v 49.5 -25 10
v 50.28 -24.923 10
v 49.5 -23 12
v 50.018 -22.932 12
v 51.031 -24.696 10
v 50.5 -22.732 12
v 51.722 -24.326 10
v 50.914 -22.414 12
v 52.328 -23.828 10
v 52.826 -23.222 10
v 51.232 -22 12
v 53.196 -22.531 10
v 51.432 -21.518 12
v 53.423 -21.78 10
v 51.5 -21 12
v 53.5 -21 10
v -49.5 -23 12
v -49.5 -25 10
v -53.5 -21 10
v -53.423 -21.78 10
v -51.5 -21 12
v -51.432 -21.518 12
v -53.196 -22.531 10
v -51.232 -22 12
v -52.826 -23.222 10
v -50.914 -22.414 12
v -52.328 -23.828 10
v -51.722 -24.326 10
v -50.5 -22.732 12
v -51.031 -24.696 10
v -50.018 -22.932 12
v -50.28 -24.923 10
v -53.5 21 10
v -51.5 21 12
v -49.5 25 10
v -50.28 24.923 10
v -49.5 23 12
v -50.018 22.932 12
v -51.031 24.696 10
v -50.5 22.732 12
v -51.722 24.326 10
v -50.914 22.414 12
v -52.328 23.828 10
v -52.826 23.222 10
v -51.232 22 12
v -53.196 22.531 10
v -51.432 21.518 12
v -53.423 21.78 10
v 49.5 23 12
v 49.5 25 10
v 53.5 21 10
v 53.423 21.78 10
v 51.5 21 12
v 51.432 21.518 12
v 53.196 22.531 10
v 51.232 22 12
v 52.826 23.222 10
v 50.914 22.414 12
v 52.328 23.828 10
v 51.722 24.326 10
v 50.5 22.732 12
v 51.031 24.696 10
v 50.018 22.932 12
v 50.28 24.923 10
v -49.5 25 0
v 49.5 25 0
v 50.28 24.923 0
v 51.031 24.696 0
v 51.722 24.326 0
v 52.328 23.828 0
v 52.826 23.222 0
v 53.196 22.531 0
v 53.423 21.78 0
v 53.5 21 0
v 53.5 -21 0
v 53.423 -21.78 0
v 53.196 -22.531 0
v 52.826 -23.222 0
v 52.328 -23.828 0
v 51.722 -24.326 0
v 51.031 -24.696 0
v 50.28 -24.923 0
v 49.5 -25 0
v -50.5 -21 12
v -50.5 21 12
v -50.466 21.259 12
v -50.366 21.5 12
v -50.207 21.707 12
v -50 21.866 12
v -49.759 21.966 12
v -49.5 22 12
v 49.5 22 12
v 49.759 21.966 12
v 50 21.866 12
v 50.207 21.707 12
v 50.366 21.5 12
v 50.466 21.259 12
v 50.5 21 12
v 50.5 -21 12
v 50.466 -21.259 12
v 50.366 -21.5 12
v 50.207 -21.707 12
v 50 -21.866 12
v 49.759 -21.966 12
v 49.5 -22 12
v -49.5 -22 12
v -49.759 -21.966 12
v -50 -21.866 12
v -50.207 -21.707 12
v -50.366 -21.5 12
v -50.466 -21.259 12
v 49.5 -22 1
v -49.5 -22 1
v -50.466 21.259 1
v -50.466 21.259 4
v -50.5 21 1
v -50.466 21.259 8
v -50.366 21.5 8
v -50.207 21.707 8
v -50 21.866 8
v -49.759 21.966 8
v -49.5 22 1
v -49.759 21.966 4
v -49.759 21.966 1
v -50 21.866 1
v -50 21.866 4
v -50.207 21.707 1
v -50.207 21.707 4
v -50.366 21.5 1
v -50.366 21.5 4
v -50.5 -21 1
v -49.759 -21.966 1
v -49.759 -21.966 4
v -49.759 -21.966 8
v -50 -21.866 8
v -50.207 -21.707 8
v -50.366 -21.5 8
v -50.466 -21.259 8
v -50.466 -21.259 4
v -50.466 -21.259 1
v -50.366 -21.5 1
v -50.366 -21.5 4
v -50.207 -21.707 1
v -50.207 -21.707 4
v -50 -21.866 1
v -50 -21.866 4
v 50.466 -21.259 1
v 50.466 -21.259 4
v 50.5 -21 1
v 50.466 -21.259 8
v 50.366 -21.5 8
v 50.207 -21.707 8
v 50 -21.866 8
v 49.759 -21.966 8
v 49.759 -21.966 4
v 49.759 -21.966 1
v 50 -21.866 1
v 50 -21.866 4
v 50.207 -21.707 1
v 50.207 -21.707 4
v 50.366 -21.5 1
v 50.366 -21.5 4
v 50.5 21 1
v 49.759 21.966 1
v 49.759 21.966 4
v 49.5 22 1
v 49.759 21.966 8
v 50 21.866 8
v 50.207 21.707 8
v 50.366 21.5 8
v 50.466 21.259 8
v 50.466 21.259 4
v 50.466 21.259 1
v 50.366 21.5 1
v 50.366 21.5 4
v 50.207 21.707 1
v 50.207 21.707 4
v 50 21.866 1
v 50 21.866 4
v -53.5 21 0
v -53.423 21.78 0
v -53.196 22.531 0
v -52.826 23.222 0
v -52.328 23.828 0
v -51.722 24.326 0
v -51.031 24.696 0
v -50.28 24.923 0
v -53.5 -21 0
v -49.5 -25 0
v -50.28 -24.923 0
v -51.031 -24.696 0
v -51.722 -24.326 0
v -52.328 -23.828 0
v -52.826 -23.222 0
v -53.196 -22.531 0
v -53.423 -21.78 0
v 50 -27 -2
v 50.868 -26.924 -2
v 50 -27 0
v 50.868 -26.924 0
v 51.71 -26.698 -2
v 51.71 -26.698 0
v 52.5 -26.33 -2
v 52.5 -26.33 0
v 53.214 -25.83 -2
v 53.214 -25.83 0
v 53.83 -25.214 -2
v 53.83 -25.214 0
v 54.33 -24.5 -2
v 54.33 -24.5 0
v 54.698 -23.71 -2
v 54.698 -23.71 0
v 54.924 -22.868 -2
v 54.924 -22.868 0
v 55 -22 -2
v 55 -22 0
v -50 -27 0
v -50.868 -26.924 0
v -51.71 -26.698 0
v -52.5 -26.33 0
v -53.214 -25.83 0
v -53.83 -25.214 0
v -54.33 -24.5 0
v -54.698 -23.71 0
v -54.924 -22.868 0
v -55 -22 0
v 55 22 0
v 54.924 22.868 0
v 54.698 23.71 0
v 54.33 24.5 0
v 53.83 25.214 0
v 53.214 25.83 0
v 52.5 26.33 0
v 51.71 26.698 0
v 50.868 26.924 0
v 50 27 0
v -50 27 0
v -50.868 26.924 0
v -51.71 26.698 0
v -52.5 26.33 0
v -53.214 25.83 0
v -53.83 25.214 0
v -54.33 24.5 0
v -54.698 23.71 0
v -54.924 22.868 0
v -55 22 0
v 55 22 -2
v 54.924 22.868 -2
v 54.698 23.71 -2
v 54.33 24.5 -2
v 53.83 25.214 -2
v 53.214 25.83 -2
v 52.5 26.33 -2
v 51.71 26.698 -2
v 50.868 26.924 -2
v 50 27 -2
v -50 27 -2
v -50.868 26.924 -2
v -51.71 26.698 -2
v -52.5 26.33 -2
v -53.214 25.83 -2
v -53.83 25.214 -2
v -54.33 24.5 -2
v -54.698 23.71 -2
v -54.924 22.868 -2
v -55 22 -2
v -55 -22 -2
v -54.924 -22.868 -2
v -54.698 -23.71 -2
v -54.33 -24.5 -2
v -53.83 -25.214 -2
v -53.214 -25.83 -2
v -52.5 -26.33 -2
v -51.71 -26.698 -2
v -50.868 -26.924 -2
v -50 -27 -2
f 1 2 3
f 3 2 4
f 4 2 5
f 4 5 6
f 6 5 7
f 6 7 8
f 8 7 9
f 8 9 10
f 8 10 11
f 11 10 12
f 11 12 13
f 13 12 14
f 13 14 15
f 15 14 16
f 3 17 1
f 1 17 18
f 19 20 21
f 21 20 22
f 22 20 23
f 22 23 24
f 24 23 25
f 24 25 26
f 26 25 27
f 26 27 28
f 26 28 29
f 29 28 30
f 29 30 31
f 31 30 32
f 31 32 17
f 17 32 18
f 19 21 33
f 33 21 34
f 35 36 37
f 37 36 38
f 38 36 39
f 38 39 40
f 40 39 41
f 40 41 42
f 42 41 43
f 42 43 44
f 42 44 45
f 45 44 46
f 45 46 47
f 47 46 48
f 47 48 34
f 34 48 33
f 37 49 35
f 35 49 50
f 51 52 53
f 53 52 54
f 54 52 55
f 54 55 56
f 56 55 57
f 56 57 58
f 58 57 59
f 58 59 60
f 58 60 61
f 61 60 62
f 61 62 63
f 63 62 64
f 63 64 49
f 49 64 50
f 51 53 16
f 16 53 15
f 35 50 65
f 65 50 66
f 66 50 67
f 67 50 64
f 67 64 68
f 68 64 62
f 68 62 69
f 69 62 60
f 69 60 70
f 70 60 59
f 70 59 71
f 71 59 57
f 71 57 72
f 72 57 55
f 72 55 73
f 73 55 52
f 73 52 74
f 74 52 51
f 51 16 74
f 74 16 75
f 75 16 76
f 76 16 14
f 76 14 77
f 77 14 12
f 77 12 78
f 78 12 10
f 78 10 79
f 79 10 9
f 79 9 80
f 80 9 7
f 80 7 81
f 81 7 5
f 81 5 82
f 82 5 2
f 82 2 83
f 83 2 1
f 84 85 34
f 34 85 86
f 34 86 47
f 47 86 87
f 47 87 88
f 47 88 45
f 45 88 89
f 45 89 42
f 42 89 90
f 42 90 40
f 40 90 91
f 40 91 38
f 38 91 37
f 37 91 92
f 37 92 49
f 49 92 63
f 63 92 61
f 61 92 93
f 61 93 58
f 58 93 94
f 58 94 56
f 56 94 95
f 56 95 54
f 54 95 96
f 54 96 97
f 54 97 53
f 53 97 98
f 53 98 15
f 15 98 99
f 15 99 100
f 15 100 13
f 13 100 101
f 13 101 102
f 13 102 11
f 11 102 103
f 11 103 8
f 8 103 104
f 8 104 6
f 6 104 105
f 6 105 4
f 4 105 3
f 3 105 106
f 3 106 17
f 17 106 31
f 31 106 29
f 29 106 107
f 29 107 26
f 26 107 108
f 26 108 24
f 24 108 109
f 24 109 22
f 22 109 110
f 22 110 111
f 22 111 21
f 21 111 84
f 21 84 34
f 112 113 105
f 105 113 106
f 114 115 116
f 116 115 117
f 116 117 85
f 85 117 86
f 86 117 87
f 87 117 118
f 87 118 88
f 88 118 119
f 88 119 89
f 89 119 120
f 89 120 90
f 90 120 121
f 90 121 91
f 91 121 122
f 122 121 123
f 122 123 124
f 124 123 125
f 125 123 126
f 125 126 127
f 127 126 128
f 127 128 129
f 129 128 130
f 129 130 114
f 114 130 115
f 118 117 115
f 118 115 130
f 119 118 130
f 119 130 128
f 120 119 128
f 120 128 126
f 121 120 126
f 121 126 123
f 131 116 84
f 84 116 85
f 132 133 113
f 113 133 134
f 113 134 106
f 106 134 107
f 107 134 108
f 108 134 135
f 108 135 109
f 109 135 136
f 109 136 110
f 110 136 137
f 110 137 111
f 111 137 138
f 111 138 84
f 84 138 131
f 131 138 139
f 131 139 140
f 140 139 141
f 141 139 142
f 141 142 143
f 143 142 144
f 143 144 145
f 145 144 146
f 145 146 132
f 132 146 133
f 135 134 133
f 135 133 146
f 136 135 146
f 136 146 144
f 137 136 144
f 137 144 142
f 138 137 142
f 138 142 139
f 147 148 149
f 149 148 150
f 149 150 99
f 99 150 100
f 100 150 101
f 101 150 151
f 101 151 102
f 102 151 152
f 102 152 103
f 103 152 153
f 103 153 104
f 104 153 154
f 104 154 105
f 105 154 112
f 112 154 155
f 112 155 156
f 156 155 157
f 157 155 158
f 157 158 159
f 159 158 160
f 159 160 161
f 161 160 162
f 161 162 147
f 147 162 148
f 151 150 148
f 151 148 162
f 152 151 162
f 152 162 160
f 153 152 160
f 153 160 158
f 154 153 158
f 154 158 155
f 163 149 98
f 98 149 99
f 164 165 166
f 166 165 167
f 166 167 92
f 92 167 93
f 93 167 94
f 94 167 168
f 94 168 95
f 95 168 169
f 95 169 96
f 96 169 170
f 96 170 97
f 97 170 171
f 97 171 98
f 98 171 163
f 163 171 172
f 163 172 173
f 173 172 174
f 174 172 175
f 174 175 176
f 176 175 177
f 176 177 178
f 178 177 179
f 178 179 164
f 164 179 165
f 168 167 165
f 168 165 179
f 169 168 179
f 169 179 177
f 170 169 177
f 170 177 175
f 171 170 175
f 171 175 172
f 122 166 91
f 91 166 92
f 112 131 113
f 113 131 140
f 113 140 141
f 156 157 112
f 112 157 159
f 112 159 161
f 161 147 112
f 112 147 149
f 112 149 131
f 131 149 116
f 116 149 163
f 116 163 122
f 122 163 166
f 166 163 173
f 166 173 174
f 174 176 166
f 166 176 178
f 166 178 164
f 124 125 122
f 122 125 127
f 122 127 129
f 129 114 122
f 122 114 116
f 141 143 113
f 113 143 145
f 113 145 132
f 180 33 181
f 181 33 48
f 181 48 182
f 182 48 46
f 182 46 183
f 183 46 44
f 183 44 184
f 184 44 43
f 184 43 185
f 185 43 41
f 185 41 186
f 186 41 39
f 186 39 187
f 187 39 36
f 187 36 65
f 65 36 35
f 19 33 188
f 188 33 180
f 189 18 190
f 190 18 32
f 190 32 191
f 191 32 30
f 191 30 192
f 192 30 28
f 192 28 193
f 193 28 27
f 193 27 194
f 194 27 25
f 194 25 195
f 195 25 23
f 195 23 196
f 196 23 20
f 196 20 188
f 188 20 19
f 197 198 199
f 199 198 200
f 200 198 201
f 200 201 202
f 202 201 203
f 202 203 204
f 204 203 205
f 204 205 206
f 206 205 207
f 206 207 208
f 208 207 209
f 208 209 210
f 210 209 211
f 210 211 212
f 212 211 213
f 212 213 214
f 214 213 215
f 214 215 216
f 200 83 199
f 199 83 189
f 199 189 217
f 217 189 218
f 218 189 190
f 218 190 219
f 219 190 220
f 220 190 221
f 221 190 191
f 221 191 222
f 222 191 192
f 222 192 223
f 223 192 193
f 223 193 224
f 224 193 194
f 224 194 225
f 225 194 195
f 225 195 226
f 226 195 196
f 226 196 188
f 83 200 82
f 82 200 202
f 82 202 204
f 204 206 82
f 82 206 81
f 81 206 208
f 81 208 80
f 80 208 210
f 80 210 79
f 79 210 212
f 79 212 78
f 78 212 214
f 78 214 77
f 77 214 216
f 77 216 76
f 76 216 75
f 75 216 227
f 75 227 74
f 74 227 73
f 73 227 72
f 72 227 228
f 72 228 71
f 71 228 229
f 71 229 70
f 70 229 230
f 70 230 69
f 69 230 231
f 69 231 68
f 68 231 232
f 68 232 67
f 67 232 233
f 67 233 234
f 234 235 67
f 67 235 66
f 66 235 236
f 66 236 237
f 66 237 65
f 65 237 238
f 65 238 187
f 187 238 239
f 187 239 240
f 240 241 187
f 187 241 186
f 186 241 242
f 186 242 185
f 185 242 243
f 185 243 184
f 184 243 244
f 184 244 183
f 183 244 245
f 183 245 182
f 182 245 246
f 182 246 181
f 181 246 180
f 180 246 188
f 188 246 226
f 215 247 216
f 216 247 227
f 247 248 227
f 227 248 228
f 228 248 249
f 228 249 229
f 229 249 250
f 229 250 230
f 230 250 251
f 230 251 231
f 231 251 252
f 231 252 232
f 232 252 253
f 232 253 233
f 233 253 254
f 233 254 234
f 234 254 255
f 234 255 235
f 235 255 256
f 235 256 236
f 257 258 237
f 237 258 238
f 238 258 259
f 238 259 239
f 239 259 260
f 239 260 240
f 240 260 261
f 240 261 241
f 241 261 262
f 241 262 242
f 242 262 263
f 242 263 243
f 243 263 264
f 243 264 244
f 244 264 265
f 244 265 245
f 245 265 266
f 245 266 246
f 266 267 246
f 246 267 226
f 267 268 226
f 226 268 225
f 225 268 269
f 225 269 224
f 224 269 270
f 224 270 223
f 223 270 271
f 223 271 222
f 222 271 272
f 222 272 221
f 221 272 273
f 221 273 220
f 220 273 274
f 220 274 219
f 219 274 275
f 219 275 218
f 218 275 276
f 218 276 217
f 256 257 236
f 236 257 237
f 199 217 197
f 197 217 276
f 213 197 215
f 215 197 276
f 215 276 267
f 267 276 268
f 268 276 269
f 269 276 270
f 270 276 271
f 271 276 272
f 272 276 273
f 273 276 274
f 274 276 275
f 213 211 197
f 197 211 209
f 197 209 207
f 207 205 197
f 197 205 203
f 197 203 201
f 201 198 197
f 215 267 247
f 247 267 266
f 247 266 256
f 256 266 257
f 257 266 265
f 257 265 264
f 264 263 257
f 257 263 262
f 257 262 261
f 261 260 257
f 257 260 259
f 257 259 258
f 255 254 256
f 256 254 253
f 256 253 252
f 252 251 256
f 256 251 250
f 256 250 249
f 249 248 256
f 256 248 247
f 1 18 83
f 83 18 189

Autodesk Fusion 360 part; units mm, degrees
sketch "Sketch1" plane through (0, 0, 0) normal (0, 0, 1) x (1, 0, 0) in component "Component"
  line L0 (53.5, -25) -> (-53.5, -25)
  line L1 (-53.5, -25) -> (-53.5, 25)
  line L2 (-53.5, 25) -> (53.5, 25)
  line L3 (53.5, 25) -> (53.5, -25)
  line L4 (53.5, -25) -> (-53.5, 25) construction
  line L5 (-53.5, -25) -> (53.5, 25) construction
  dimension "d1" = 50
  dimension "d2" = 107
extrude "Extrude1" add sketch "Sketch1" along normal blind 12 in component "Component"
sketch "Sketch2" plane through (0, 0, 0) normal (0, 0, -1) x (1, 0, 0) in component "Component"
  line L0 (-53.5, -25) -> (53.5, -25)
  line L1 (53.5, -25) -> (53.5, 25)
  line L2 (53.5, 25) -> (-53.5, 25)
  line L3 (-53.5, 25) -> (-53.5, -25)
  line L4 (55, -27) -> (-55, -27)
  line L5 (-55, -27) -> (-55, 27)
  line L6 (-55, 27) -> (55, 27)
  line L7 (55, 27) -> (55, -27)
  line L8 (55, -27) -> (-55, 27) construction
  line L9 (-55, -27) -> (55, 27) construction
  dimension "d5" = 54
  dimension "d6" = 110
extrude "Extrude2" add sketch "Sketch2" along normal blind 2 contours L0 L1 L2 L3 | L4 L5 L6 L7 in component "Component"
fillet "Fillet1" radius 5 4 edges at (-55, -27, -1) (-55, 27, -1) (55, 27, -1) (55, -27, -1) in component "Component"
fillet "Fillet2" radius 4 4 edges at (53.5, 25, 6) (53.5, -25, 6) (-53.5, -25, 6) (-53.5, 25, 6) in component "Component"
shell "Shell1" thickness 3 removed faces 1 at (-16.5, -8.3333, 12) in component "Component"
chamfer "Chamfer1" distance 2 angle 45 8 edges at (52.3284, -23.8284, 12) (53.5, 0, 12) (52.3284, 23.8284, 12) (0, 25, 12) (-52.3284, 23.8284, 12) (-53.5, 0, 12) (-52.3284, -23.8284, 12) (0, -25, 12) in component "Component"
component "Component" placed x (1, 0, 0) y (0, 1, 0) z (0, 0, 1) at (0, 0, 0)
